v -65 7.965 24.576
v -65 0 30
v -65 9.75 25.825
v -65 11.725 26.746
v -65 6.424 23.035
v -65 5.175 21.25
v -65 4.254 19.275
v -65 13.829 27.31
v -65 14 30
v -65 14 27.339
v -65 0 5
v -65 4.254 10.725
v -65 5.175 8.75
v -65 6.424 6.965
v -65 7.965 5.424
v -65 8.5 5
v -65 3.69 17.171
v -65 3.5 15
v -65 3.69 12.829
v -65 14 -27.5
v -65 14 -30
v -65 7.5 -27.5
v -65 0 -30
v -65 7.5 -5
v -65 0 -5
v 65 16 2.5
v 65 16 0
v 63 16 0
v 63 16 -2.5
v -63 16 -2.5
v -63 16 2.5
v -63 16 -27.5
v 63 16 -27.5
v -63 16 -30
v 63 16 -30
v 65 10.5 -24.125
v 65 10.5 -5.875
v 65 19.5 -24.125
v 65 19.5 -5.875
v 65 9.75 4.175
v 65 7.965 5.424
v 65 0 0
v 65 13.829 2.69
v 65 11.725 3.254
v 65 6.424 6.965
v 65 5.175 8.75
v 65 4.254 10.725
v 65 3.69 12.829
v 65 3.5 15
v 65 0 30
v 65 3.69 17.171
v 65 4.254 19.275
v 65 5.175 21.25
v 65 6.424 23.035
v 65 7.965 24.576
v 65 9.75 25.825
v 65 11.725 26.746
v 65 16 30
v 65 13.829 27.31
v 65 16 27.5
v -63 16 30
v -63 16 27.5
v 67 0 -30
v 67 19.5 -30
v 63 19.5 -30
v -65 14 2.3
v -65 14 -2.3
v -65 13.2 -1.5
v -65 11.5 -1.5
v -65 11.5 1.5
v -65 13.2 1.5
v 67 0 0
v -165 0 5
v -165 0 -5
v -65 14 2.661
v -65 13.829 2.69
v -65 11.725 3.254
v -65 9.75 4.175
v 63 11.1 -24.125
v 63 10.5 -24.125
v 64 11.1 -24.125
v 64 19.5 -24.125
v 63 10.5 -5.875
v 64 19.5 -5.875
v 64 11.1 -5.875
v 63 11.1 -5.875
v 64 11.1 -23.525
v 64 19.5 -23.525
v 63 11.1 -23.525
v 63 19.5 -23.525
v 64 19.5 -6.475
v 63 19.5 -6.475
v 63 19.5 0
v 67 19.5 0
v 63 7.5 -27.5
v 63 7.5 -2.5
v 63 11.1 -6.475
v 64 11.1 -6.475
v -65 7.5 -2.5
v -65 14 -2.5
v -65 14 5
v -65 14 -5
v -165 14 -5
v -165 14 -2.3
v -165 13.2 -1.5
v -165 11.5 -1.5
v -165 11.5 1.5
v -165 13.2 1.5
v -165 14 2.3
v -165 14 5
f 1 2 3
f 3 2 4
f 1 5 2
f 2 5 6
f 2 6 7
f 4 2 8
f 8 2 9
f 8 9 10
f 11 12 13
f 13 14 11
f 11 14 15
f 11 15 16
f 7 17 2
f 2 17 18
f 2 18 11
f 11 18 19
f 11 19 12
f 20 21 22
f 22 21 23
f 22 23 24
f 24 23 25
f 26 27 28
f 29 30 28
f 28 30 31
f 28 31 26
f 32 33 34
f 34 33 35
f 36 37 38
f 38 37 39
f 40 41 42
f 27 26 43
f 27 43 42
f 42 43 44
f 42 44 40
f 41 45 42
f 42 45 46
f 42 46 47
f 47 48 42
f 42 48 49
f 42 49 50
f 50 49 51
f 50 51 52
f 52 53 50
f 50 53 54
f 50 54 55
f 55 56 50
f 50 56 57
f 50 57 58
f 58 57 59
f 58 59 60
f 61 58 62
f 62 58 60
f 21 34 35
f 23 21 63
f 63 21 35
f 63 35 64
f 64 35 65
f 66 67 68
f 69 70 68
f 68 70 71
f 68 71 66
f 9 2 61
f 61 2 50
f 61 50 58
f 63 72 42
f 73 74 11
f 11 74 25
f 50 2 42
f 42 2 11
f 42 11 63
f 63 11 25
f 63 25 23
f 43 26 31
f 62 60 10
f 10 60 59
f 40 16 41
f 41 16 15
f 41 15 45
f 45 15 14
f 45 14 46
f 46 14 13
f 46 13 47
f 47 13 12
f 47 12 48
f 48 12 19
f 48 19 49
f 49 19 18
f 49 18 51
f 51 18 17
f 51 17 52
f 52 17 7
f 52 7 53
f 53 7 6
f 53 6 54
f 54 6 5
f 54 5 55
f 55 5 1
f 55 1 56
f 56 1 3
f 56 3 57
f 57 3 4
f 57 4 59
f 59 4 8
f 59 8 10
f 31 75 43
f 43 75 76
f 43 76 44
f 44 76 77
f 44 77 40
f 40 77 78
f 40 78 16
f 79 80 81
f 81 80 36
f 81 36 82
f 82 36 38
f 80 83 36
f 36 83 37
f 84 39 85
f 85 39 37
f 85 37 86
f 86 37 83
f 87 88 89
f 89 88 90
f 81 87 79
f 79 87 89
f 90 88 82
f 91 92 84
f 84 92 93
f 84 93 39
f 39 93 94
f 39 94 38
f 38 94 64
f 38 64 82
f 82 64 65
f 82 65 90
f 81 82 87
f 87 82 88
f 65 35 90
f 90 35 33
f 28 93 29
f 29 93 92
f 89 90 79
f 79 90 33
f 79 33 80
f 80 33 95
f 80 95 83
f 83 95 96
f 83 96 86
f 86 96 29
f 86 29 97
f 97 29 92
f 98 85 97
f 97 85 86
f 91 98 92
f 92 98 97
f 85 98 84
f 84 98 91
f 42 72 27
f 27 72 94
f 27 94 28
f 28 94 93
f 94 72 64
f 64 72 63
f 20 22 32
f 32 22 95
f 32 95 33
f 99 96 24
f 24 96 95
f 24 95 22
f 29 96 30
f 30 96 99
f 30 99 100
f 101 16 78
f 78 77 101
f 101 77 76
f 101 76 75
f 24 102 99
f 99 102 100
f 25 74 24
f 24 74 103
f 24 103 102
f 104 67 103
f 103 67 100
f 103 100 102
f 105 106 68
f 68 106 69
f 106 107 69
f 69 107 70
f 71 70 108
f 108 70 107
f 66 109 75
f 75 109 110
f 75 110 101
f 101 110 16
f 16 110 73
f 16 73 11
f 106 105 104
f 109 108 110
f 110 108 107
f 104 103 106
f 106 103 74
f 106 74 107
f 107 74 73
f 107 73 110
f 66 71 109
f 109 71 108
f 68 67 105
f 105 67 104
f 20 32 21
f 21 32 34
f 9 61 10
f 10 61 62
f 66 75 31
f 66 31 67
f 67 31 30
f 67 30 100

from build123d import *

# Parameters (mm, degrees)
SKETCH1_W            = 130
SKETCH1_H            = 60
BOSS_EXTRUDE1_DEPTH  = 16
CUT_EXTRUDE1_DEPTH   = 135.372616258
SKETCH3_W            = 18.25
SKETCH3_H            = 5.5
CUT_EXTRUDE2_DEPTH   = 2
BOSS_EXTRUDE2_START  = -2
SKETCH3_7_W          = 0.6
SKETCH3_7_H          = 4.9
SKETCH3_7_H_2        = 3.5
BOSS_EXTRUDE2_DEPTH  = 1
SKETCH3_9_W          = 5.875
SKETCH3_9_H          = 3.5
SKETCH3_9_W_2        = 0.6
SKETCH3_9_H_2        = 4.9
SKETCH3_9_W_3        = 17.05
SKETCH3_9_H_3        = 0.6
BOSS_EXTRUDE3_DEPTH  = 2
SKETCH3_10_W         = 5.875
SKETCH3_10_H         = 3.5
BOSS_EXTRUDE4_DEPTH  = 2
SKETCH4_W            = 25
SKETCH4_H            = 8.5
SKETCH4_H_2          = 6.5
CUT_EXTRUDE3_DEPTH   = 128
BOSS_EXTRUDE10_DEPTH = 100
CHAMFER1_SIZE        = 0.8
CHAMFER2_SIZE        = 2


with BuildPart() as part:
    # Sketch1 → Boss-Extrude1 (new body)
    with BuildSketch(Plane(origin=(0, 0, 0), x_dir=(1, 0, 0), z_dir=(0, 1, 0))):
        Rectangle(SKETCH1_W, SKETCH1_H)
    extrude(amount=BOSS_EXTRUDE1_DEPTH)

    # Sketch2 → Cut-Extrude1 (cut, through all)
    with BuildSketch(Plane(origin=(65, 0, 0), x_dir=(0, 0, -1), z_dir=(1, 0, 0))):
        with BuildLine():
            ThreePointArc((-27.5, 16), (-15, 3.5), (-2.5, 16))
            Line((-2.5, 16), (-27.5, 16))
        make_face()
        with BuildLine():
            Line((-27.5, 16), (-2.5, 16))
            ThreePointArc((-2.5, 16), (-15, 28.5), (-27.5, 16))
        make_face()
    extrude(amount=-CUT_EXTRUDE1_DEPTH, mode=Mode.SUBTRACT)

    # Sketch3 → Cut-Extrude2 (cut)
    with BuildSketch(Plane(origin=(65, 0, 0), x_dir=(0, 0, -1), z_dir=(1, 0, 0))):
        with Locations((15, 13.25)):
            Rectangle(SKETCH3_W, SKETCH3_H)
    extrude(amount=-CUT_EXTRUDE2_DEPTH, mode=Mode.SUBTRACT)

    # Sketch3<7> → Boss-Extrude2 (add)
    with BuildSketch(Plane(origin=(65, 0, 0), x_dir=(0, 0, -1), z_dir=(1, 0, 0)).offset(BOSS_EXTRUDE2_START)):
        with Locations((23.825, 13.55)):
            Rectangle(SKETCH3_7_W, SKETCH3_7_H)
        with Locations((23.825, 17.75)):
            Rectangle(SKETCH3_7_W, SKETCH3_7_H_2)
        with Locations((6.175, 17.75)):
            Rectangle(SKETCH3_7_W, SKETCH3_7_H_2)
        with Locations((6.175, 13.55)):
            Rectangle(SKETCH3_7_W, SKETCH3_7_H)
    extrude(amount=BOSS_EXTRUDE2_DEPTH)

    # Sketch3<9> → Boss-Extrude3 (add)
    with BuildSketch(Plane(origin=(65, 0, 0), x_dir=(0, 0, -1), z_dir=(1, 0, 0))):
        with Locations((2.9375, 17.75)):
            Rectangle(SKETCH3_9_W, SKETCH3_9_H)
        Polygon((0, 0), (30, 0), (30, 16), (24.125, 16), (24.125, 11.1), (24.125, 10.5), (23.525, 10.5), (6.475, 10.5), (5.875, 10.5), (5.875, 11.1), (5.875, 16), (0, 16), align=None)
        with Locations((6.175, 13.55)):
            Rectangle(SKETCH3_9_W_2, SKETCH3_9_H_2)
        with Locations((15, 13.55)):
            Rectangle(SKETCH3_9_W_3, SKETCH3_9_H_2)
        with Locations((6.175, 17.75)):
            Rectangle(SKETCH3_9_W_2, SKETCH3_9_H)
        with Locations((15, 17.75)):
            Rectangle(SKETCH3_9_W_3, SKETCH3_9_H)
        with Locations((15, 10.8)):
            Rectangle(SKETCH3_9_W_3, SKETCH3_9_H_3)
        with Locations((6.175, 10.8)):
            Rectangle(SKETCH3_9_W_2, SKETCH3_9_H_3)
        with Locations((23.825, 13.55)):
            Rectangle(SKETCH3_9_W_2, SKETCH3_9_H_2)
        with Locations((23.825, 10.8)):
            Rectangle(SKETCH3_9_W_2, SKETCH3_9_H_3)
        with Locations((23.825, 17.75)):
            Rectangle(SKETCH3_9_W_2, SKETCH3_9_H)
        with Locations((27.0625, 17.75)):
            Rectangle(SKETCH3_9_W, SKETCH3_9_H)
    extrude(amount=BOSS_EXTRUDE3_DEPTH)

    # Sketch3<10> → Boss-Extrude4 (add)
    with BuildSketch(Plane(origin=(65, 0, 0), x_dir=(0, 0, -1), z_dir=(1, 0, 0))):
        with Locations((2.9375, 17.75)):
            Rectangle(SKETCH3_10_W, SKETCH3_10_H)
        with Locations((27.0625, 17.75)):
            Rectangle(SKETCH3_10_W, SKETCH3_10_H)
    extrude(amount=-BOSS_EXTRUDE4_DEPTH)

    # Sketch4 → Cut-Extrude3 (cut)
    with BuildSketch(Plane.ZY.offset(65)):
        with Locations((-15, 11.75)):
            Rectangle(SKETCH4_W, SKETCH4_H)
        with Locations((-15, 19.25)):
            Rectangle(SKETCH4_W, SKETCH4_H_2)
    extrude(amount=-CUT_EXTRUDE3_DEPTH, mode=Mode.SUBTRACT)

    # Sketch5 → Boss-Extrude10 (add)
    with BuildSketch(Plane.ZY.offset(65)):
        Polygon((1.5, 14), (1.5, 11.5), (-1.5, 11.5), (-1.5, 14), (-5, 14), (-5, 0), (5, 0), (5, 14), align=None)
    extrude(amount=BOSS_EXTRUDE10_DEPTH)

    # Chamfer1
    chamfer1_edges = [part.edges().sort_by_distance(p)[0] for p in [
        (-115, 14, -1.5),
        (-115, 14, 1.5),
    ]]
    chamfer(chamfer1_edges, length=CHAMFER1_SIZE)

    # Chamfer2
    chamfer2_edges = [part.edges().sort_by_distance(p)[0] for p in [
        (-65, 16, -28.75),
        (-65, 16, 28.75),
        (-65, 16, 0),
    ]]
    chamfer(chamfer2_edges, length=CHAMFER2_SIZE - 0.0001)  # a hair under: the kernel refuses the full size


solid = part.part
